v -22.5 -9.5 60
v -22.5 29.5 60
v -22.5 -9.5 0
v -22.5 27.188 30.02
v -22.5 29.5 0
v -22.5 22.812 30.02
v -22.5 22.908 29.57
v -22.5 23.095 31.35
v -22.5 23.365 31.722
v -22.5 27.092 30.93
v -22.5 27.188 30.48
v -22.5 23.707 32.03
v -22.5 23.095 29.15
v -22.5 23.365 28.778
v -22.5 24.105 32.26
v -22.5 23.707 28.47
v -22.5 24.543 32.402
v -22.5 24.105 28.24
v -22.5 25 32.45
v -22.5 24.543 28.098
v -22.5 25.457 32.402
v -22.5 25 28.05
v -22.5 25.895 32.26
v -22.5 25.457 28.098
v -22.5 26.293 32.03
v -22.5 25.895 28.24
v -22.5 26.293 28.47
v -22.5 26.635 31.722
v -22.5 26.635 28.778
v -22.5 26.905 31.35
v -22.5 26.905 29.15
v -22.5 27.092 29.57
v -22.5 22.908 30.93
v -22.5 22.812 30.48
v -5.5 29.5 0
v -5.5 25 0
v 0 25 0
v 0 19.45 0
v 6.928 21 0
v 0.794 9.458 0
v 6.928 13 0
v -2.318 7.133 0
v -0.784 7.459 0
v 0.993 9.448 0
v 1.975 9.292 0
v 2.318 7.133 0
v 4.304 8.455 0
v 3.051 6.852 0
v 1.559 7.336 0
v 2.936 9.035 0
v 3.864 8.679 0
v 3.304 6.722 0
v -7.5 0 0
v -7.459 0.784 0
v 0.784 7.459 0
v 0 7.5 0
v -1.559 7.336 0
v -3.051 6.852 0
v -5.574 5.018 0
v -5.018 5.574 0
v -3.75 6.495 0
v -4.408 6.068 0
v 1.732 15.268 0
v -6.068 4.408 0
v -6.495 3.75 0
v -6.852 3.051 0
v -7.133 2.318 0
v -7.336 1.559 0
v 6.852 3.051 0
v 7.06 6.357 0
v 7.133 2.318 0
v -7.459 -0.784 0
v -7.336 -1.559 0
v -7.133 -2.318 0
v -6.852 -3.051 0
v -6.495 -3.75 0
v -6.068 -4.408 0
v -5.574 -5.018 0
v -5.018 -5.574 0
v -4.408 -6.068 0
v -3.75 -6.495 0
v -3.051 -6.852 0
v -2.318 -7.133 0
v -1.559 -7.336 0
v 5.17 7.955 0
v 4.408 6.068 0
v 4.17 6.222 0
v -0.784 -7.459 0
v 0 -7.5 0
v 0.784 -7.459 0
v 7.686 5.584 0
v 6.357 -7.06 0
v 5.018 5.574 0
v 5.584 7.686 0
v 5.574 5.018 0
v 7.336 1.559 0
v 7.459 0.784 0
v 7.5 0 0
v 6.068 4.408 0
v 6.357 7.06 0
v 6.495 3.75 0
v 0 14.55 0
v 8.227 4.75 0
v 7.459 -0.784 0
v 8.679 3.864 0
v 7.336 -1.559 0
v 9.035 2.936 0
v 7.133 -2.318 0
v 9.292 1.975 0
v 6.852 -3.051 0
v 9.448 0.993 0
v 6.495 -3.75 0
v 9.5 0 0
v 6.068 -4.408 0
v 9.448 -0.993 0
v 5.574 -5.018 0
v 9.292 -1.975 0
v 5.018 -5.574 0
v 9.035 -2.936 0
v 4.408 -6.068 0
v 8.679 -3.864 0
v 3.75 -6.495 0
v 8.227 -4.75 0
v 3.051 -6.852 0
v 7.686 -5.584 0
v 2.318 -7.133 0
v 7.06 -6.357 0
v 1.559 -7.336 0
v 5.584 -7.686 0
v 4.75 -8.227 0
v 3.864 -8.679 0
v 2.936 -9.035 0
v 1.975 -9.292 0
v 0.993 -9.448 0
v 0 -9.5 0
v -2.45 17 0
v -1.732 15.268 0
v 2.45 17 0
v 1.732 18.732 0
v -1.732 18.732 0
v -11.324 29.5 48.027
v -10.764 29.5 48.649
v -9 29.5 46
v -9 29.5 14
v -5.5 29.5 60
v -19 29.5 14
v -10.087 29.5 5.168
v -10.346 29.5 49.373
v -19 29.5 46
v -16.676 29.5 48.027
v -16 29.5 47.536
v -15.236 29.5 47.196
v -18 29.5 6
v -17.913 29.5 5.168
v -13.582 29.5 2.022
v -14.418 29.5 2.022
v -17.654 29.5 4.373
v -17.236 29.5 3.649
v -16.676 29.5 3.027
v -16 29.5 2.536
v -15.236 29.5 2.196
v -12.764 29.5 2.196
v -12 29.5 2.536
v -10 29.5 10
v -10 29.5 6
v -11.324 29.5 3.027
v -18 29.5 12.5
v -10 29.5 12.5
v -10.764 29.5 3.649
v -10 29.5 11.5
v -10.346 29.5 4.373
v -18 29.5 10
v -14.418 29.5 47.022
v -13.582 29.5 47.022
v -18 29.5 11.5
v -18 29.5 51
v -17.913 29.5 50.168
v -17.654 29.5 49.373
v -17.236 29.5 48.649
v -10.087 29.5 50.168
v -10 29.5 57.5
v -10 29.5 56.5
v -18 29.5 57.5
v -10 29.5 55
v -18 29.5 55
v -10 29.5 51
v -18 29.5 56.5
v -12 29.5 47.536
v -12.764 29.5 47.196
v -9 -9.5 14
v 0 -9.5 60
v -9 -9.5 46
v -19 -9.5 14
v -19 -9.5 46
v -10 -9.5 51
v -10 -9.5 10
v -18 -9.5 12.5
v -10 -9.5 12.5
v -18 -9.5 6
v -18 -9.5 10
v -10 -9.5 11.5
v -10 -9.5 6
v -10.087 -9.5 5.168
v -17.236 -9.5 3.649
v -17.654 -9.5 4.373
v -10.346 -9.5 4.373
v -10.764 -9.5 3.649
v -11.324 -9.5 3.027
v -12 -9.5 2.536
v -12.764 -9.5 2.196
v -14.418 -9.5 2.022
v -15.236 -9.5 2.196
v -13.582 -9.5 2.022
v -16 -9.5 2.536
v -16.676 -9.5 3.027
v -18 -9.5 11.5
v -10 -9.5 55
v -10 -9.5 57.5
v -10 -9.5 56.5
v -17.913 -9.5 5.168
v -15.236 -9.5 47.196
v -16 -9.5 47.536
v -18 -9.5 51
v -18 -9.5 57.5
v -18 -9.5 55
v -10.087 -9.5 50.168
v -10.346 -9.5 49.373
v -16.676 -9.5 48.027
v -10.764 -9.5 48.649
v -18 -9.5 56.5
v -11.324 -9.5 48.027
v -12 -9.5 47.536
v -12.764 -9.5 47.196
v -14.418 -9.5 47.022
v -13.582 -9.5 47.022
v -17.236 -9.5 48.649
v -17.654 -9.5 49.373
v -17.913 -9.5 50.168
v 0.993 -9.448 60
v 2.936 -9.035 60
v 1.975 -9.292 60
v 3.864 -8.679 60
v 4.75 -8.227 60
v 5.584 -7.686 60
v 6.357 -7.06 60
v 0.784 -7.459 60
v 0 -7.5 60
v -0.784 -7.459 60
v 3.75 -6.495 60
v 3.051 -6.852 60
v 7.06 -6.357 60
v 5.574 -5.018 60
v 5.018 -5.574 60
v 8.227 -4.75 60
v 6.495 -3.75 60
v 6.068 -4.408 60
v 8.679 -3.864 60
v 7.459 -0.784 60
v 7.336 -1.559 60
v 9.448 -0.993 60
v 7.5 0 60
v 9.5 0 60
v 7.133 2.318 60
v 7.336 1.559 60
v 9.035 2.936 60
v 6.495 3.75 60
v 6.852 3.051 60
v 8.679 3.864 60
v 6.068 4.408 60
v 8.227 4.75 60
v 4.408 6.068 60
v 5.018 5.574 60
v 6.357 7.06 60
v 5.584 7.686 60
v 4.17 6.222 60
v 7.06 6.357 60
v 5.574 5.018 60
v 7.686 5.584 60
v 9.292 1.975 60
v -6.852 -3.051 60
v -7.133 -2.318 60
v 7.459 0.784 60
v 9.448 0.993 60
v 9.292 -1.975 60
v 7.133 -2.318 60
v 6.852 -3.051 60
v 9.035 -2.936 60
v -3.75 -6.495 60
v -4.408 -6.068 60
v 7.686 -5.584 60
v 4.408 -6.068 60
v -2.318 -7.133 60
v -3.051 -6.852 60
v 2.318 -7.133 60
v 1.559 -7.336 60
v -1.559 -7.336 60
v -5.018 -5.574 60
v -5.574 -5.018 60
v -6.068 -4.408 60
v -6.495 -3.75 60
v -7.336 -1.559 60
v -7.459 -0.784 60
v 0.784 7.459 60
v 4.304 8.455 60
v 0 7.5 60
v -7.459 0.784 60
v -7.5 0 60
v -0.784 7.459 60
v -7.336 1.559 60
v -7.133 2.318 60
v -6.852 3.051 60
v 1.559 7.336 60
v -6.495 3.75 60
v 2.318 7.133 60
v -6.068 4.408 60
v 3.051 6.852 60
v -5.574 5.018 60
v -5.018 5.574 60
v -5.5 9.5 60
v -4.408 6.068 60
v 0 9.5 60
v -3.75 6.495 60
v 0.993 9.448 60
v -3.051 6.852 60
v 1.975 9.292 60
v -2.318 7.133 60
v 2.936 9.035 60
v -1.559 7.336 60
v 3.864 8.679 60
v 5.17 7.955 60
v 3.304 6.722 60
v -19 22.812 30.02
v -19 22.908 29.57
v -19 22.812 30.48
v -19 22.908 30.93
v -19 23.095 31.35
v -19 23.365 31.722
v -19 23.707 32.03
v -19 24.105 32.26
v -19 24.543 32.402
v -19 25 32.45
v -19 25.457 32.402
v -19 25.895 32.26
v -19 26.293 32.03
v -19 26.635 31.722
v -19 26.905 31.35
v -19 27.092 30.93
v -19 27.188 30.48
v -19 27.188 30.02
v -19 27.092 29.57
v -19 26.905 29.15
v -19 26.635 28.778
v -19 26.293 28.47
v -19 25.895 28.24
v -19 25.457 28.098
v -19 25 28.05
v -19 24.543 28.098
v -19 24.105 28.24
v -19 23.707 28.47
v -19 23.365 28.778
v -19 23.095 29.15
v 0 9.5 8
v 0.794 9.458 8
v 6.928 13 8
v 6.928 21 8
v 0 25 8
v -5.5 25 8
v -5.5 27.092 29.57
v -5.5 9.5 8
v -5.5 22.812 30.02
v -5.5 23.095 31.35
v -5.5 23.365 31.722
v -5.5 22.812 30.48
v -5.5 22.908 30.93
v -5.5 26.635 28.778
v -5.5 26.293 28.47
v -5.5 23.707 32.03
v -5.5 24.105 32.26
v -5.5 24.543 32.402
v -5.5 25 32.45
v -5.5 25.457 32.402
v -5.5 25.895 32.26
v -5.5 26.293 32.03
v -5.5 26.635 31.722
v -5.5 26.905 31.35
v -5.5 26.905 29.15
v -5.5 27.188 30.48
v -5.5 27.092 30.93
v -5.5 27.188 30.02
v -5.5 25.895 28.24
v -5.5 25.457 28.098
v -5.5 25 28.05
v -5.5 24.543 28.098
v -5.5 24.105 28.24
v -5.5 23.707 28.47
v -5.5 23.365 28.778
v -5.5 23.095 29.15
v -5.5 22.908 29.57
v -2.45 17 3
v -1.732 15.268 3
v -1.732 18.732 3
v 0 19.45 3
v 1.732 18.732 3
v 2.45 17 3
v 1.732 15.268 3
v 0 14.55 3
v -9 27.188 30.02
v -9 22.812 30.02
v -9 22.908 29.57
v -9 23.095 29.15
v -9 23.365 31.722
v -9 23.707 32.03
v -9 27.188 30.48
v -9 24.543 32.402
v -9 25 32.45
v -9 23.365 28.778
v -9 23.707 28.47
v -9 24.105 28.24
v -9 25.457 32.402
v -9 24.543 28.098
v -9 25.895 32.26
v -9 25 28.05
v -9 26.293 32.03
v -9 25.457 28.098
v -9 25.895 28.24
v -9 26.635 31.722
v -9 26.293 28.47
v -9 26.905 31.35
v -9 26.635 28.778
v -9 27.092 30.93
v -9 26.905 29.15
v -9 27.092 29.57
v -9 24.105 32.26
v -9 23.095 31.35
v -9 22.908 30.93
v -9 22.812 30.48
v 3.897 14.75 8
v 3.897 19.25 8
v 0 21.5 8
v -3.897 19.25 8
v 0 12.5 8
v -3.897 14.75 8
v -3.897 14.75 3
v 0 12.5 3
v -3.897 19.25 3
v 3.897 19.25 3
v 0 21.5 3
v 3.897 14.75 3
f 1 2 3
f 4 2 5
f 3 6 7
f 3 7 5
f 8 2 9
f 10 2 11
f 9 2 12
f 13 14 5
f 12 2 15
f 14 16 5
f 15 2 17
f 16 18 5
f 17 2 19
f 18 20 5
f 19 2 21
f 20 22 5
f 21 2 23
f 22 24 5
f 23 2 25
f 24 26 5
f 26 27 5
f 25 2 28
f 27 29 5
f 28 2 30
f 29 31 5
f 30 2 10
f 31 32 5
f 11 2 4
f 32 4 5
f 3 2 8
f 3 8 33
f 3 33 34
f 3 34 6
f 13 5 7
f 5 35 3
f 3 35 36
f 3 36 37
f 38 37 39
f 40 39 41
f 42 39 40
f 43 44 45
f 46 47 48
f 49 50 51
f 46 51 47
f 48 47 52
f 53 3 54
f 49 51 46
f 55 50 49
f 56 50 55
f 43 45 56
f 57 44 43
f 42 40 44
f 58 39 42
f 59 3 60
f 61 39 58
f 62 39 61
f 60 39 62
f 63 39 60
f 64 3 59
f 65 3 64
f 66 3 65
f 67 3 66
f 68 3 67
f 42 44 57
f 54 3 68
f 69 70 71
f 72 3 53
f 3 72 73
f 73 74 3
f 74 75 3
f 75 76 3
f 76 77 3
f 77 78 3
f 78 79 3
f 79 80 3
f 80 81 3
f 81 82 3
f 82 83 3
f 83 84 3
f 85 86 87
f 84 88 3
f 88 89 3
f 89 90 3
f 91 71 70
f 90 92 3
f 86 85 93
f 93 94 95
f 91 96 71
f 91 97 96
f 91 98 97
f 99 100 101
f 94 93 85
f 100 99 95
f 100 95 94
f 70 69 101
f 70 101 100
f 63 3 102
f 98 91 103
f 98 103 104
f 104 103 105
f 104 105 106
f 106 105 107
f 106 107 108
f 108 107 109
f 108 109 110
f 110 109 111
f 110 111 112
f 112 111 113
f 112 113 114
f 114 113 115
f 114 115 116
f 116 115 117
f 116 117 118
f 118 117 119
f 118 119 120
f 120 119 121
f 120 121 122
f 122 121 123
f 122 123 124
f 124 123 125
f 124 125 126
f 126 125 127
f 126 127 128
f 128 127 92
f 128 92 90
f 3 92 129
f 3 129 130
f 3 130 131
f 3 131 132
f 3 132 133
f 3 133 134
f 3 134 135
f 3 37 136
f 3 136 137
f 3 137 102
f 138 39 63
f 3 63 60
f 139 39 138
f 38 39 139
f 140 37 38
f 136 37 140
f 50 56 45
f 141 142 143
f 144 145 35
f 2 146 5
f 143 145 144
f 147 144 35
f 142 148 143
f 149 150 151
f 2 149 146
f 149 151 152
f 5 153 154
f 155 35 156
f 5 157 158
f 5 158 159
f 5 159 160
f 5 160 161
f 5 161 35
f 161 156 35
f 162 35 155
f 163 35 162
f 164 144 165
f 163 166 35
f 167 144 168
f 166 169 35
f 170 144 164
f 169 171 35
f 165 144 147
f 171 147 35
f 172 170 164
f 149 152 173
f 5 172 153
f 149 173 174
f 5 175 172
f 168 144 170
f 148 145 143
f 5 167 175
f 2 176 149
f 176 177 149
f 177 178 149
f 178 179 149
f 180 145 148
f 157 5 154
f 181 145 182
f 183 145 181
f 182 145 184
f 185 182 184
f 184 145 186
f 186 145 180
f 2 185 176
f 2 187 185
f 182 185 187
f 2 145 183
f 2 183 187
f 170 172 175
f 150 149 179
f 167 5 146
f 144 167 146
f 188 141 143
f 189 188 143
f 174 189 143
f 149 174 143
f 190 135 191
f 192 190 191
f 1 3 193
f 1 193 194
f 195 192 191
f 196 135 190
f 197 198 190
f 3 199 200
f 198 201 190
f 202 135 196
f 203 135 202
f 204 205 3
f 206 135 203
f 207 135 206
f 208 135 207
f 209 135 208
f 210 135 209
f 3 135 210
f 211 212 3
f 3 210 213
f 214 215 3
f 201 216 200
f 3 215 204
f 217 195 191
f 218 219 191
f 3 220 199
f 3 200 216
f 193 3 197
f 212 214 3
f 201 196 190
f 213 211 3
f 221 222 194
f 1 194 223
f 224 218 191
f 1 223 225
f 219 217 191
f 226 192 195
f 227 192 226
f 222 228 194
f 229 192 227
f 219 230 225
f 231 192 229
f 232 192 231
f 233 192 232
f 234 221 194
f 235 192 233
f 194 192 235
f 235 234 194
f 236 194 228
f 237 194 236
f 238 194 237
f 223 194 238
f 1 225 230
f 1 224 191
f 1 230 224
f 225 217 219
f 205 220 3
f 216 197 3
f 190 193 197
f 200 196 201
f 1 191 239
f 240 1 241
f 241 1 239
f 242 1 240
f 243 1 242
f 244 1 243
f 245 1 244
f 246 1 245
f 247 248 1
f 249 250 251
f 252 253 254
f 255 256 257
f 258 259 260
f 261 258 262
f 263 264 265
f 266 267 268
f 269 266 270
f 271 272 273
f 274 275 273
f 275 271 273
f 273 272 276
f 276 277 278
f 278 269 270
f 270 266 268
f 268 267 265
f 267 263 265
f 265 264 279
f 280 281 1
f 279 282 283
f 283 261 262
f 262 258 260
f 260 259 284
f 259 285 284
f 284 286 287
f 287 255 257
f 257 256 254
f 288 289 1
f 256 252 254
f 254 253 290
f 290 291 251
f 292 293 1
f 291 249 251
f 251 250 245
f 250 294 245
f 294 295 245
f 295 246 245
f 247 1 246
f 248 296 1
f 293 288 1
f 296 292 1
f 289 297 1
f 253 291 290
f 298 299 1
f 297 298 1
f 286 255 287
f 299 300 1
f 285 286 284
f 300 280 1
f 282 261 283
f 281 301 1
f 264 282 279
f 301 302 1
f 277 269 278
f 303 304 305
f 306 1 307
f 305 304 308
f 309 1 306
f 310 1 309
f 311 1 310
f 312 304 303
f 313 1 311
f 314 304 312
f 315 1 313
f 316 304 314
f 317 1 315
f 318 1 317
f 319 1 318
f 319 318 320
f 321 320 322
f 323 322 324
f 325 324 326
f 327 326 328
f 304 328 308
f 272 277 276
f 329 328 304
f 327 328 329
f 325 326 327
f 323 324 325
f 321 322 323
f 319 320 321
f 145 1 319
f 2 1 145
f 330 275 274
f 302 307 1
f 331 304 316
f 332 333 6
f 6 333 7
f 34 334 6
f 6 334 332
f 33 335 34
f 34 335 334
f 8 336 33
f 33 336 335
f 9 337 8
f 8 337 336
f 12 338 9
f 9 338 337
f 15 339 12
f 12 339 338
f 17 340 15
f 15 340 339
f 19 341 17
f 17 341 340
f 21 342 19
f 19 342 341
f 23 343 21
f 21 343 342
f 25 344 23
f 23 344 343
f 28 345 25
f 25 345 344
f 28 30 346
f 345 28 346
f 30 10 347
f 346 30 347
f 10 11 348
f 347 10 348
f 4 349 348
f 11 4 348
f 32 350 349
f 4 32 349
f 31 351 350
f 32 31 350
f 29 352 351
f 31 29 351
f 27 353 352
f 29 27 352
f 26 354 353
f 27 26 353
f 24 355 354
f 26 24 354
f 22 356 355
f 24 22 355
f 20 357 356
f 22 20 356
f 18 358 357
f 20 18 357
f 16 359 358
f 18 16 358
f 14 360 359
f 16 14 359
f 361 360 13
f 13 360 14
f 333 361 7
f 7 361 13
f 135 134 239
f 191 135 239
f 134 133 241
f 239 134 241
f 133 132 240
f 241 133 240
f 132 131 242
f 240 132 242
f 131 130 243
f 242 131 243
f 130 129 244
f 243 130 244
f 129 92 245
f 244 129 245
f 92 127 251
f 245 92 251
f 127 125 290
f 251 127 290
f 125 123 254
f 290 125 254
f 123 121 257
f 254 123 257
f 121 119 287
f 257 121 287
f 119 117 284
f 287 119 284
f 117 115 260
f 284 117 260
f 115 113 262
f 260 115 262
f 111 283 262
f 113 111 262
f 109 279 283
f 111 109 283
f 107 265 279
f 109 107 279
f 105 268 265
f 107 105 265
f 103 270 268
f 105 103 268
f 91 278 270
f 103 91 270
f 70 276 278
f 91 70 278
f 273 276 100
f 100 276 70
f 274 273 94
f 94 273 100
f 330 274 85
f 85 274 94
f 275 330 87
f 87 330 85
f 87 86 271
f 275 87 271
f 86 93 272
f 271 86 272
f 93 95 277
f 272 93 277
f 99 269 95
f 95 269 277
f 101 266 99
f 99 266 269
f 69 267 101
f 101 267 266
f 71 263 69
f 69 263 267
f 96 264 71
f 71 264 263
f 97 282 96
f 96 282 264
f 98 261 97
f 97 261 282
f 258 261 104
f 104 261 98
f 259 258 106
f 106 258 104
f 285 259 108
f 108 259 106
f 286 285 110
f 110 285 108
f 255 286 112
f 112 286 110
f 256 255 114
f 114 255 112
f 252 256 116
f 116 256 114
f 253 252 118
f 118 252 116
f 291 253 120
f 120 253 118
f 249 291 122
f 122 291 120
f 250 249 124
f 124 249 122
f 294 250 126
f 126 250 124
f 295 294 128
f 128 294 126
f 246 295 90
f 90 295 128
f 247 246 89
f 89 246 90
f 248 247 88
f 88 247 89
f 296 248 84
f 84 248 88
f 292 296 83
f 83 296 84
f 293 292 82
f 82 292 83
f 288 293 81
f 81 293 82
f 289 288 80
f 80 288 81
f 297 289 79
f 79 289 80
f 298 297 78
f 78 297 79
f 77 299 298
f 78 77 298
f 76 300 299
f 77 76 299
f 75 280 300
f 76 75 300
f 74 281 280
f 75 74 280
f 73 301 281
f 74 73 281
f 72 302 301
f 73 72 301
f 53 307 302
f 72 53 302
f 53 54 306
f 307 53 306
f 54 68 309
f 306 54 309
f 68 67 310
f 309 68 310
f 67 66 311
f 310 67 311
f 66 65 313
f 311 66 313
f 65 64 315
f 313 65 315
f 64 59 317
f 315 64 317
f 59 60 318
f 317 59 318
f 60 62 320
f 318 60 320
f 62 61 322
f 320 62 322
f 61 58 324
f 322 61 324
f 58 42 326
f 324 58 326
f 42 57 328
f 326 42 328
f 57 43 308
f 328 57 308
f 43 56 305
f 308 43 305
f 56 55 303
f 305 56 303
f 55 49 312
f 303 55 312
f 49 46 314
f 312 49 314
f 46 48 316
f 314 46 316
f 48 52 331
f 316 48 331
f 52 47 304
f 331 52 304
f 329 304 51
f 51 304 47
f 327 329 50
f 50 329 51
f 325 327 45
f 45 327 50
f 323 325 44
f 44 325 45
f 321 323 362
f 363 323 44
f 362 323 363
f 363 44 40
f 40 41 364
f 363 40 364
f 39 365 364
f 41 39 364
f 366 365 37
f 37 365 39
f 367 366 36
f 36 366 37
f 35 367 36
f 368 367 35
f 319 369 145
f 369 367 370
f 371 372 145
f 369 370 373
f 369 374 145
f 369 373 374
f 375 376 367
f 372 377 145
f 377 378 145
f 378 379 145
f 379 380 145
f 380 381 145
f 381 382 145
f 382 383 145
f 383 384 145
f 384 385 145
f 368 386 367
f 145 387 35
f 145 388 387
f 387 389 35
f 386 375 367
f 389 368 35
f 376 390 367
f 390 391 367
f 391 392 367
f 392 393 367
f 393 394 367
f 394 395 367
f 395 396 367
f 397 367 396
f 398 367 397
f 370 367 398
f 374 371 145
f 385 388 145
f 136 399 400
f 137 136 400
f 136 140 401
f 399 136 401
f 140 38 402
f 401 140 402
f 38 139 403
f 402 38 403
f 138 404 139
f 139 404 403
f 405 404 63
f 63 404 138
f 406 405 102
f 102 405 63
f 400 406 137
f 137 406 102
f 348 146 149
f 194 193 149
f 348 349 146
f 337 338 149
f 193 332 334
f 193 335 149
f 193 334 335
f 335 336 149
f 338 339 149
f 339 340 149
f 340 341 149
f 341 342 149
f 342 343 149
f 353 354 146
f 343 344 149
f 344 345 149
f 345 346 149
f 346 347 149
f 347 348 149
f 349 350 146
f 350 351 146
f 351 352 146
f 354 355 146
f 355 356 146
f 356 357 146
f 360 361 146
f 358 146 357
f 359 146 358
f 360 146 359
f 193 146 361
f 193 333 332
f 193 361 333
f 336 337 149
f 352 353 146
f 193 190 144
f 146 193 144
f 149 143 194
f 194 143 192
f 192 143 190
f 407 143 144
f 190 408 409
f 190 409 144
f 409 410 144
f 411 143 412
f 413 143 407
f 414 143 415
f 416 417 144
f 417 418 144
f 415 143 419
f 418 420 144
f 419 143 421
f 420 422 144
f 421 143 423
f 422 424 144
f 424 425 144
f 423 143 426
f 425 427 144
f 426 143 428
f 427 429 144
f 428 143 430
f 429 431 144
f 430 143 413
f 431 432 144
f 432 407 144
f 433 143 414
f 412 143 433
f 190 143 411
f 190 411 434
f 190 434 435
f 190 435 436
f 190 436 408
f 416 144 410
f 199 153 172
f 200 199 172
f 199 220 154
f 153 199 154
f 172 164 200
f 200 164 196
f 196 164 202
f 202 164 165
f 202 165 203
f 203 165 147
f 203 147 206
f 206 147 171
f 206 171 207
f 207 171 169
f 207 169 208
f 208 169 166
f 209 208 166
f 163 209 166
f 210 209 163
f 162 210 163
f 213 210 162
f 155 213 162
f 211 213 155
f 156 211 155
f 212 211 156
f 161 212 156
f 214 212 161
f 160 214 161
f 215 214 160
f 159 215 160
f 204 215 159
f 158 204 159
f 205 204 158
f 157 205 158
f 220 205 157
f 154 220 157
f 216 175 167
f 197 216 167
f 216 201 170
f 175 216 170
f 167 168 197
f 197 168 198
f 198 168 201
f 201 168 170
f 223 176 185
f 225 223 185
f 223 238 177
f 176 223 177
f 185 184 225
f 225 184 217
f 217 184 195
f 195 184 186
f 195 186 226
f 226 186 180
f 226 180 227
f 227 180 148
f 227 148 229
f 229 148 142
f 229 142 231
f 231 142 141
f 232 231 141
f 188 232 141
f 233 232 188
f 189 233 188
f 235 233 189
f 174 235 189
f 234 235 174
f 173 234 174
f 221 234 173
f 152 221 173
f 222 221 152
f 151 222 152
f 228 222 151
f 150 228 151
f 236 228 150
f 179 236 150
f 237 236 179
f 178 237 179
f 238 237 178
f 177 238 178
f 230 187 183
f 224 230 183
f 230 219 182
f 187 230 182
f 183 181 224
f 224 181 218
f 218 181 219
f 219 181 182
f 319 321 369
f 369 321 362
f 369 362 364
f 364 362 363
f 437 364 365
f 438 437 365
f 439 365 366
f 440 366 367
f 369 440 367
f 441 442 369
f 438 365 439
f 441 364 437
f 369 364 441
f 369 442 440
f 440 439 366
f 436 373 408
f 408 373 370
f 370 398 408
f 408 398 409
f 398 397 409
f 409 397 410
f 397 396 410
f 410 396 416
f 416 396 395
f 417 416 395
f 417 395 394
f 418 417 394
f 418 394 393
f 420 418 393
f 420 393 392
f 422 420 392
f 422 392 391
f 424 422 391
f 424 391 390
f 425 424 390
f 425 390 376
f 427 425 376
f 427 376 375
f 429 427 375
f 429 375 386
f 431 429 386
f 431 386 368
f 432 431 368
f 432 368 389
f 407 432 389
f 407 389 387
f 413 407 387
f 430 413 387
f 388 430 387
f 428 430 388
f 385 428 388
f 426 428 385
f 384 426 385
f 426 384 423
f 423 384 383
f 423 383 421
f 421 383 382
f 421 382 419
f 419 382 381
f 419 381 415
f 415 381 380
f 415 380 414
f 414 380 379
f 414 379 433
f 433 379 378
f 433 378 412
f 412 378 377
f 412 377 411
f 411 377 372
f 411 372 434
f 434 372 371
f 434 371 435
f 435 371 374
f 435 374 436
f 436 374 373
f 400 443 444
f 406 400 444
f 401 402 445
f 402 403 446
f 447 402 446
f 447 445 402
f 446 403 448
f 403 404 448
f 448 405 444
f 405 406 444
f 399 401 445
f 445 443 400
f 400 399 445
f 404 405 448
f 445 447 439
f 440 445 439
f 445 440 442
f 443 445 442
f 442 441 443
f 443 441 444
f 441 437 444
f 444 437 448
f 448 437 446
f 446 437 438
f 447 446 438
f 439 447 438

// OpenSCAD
// file: inc/bearing.scad
// PRUSA iteration3
// Bearing holders
// GNU GPL v3
// Josef Průša <iam@josefprusa.cz> and contributors
// http://www.reprap.org/wiki/Prusa_Mendel
// http://prusamendel.org

bearing_diameter = 15;

module horizontal_bearing_base(bearings=1){
 translate(v=[0,0,6]) cube(size = [24,8+bearings*25,12], center = true);	
}
module horizontal_bearing_holes(bearings=1){
 cutter_lenght = 10+bearings*25;
 one_holder_lenght = 8+25;
 holder_lenght = 8+bearings*25;
 
 // Main bearing cut
 difference(){
  translate(v=[0,0,12]) rotate(a=[90,0,0]) translate(v=[0,0,-cutter_lenght/2]) cylinder(h = cutter_lenght, r=bearing_diameter/2, $fn=50);
  // Bearing retainers
  translate(v=[0,1-holder_lenght/2,3]) cube(size = [24,6,8], center = true);
  translate(v=[0,-1+holder_lenght/2,3]) cube(size = [24,6,8], center = true);
 }
 
 // Ziptie cutouts
 ziptie_cut_ofset = 0;
 for ( i = [0 : bearings-1] ){
  // For easier positioning I move them by half of one 
  // bearing holder then add each bearign lenght and then center again
  translate(v=[0,-holder_lenght/2,0]) translate(v=[0,one_holder_lenght/2+i*25,0]) difference(){
   union(){
    translate(v=[0,2-6,12]) rotate(a=[90,0,0]) translate(v=[0,0,0]) cylinder(h = 4, r=12.5, $fn=50);
    translate(v=[0,2+6,12]) rotate(a=[90,0,0]) translate(v=[0,0,0]) cylinder(h = 4, r=12.5, $fn=50);
   }
   translate(v=[0,10,12]) rotate(a=[90,0,0]) translate(v=[0,0,0]) cylinder(h = 24, r=10, $fn=50);
  }
 }
 
}

module horizontal_bearing_test(){
 difference(){
  horizontal_bearing_base(1);
  horizontal_bearing_holes(1);
 }
 translate(v=[30,0,0]) difference(){
  horizontal_bearing_base(2);
  horizontal_bearing_holes(2);
 }
 translate(v=[60,0,0]) difference(){
  horizontal_bearing_base(3);
  horizontal_bearing_holes(3);
 }
}



thinwall = 2;
bearing_size = bearing_diameter + 2 * thinwall;

module vertical_bearing_base(){
 translate(v=[-2-bearing_size/4,0,30]) cube(size = [4+bearing_size/2,bearing_size,60], center = true);
 cylinder(h = 60, r=bearing_size/2, $fn = 60);
}

module vertical_bearing_holes(){
  translate(v=[0,0,-1]) cylinder(h = 62, r=bearing_diameter/2, $fn = 60);
  rotate(a=[0,0,-60]) translate(v=[10,0,31]) cube(size = [10,1,62], center = true);
}

difference(){
vertical_bearing_base();
vertical_bearing_holes();
}
// file: ../configuration.scad
x_rod_distance = 45;

// Select your belt type ******************************************************

//T2.5
belt_tooth_distance = 2.5;
belt_tooth_ratio = 0.5;

//T5 (strongly discouraged)
//belt_tooth_distance = 5;
//belt_tooth_ratio = 0.75;

//HTD3
//belt_tooth_distance = 3;
//belt_tooth_ratio = 0.75;

//MXL
//belt_tooth_distance = 2.032;
//belt_tooth_ratio = 0.64;

// Select your hot-end mount ******************************************************

// 0 = none; 1 = groove-mount (J-head/MakerGear etc.)
hotend_mount = 1;

hotend_groovemount_depth = 5;
hotend_groovemount_diameter = 11.05;
// file: inc/x-end.scad
// PRUSA iteration3
// X end prototype
// GNU GPL v3
// Josef Průša <iam@josefprusa.cz> and contributors
// http://www.reprap.org/wiki/Prusa_Mendel
// http://prusamendel.org

include <../../configuration.scad>
use <bearing.scad>

module x_end_base(){
// Main block
translate(v=[-14,-10,30]) cube(size = [17,39,60], center = true);
// Bearing holder
vertical_bearing_base();	
//Nut trap
 // Cube
 translate(v=[-2-2,-17,4]) cube(size = [8,16,8], center = true);
 // Hexagon
 translate(v=[0,-17,0]) rotate([0,0,30]) cylinder(h = 8, r=8, $fn = 6);
}

module x_end_holes(){
vertical_bearing_holes();
// Belt hole
translate(v=[-5.5-10+1.5,-10,30]) cube(size = [10,46,32], center = true);
// Bottom pushfit rod
translate(v=[-14,-40,6]) rotate(a=[-90,0,0]) pushfit_rod(8,50);
// Top pushfit rod
translate(v=[-14,-40,x_rod_distance+6]) rotate(a=[-90,0,0]) pushfit_rod(8,50);
// Nut trap
 translate(v=[0,-17,-1]) cylinder(h = 10, r=2.45);
 translate(v=[0,-17,3]) rotate([0,0,30]) cylinder(h = 5, r=4.5, $fn = 6);
}


// Final prototype
module x_end_plain(){
 difference(){
  x_end_base();
  x_end_holes();
 }
}

//x_end_plain();


module pushfit_rod(diameter,length){
 cylinder(h = length, r=diameter/2, $fn=30);
 translate(v=[0,-diameter/4,length/2]) cube(size = [diameter,diameter/2,length], center = true);
 translate(v=[0,-diameter/2-2,length/2]) cube(size = [diameter,1,length], center = true);
}
// main file
// PRUSA iteration3
// X end idler
// GNU GPL v3
// Josef Průša <iam@josefprusa.cz> and contributors
// http://www.reprap.org/wiki/Prusa_Mendel
// http://prusamendel.org

use <inc/x-end.scad>

module x_end_idler_base(){
 x_end_base();
}

module x_end_idler_holes(){
 x_end_holes();
 translate(v=[0,-25,30.25]) rotate(a=[0,-90,0]) cylinder(h = 80, r=2.2, $fn=30);
}

// Final part
module x_end_idler(){
 mirror([0,1,0]) difference(){
  x_end_idler_base();
  x_end_idler_holes();
 }
}

x_end_idler();
